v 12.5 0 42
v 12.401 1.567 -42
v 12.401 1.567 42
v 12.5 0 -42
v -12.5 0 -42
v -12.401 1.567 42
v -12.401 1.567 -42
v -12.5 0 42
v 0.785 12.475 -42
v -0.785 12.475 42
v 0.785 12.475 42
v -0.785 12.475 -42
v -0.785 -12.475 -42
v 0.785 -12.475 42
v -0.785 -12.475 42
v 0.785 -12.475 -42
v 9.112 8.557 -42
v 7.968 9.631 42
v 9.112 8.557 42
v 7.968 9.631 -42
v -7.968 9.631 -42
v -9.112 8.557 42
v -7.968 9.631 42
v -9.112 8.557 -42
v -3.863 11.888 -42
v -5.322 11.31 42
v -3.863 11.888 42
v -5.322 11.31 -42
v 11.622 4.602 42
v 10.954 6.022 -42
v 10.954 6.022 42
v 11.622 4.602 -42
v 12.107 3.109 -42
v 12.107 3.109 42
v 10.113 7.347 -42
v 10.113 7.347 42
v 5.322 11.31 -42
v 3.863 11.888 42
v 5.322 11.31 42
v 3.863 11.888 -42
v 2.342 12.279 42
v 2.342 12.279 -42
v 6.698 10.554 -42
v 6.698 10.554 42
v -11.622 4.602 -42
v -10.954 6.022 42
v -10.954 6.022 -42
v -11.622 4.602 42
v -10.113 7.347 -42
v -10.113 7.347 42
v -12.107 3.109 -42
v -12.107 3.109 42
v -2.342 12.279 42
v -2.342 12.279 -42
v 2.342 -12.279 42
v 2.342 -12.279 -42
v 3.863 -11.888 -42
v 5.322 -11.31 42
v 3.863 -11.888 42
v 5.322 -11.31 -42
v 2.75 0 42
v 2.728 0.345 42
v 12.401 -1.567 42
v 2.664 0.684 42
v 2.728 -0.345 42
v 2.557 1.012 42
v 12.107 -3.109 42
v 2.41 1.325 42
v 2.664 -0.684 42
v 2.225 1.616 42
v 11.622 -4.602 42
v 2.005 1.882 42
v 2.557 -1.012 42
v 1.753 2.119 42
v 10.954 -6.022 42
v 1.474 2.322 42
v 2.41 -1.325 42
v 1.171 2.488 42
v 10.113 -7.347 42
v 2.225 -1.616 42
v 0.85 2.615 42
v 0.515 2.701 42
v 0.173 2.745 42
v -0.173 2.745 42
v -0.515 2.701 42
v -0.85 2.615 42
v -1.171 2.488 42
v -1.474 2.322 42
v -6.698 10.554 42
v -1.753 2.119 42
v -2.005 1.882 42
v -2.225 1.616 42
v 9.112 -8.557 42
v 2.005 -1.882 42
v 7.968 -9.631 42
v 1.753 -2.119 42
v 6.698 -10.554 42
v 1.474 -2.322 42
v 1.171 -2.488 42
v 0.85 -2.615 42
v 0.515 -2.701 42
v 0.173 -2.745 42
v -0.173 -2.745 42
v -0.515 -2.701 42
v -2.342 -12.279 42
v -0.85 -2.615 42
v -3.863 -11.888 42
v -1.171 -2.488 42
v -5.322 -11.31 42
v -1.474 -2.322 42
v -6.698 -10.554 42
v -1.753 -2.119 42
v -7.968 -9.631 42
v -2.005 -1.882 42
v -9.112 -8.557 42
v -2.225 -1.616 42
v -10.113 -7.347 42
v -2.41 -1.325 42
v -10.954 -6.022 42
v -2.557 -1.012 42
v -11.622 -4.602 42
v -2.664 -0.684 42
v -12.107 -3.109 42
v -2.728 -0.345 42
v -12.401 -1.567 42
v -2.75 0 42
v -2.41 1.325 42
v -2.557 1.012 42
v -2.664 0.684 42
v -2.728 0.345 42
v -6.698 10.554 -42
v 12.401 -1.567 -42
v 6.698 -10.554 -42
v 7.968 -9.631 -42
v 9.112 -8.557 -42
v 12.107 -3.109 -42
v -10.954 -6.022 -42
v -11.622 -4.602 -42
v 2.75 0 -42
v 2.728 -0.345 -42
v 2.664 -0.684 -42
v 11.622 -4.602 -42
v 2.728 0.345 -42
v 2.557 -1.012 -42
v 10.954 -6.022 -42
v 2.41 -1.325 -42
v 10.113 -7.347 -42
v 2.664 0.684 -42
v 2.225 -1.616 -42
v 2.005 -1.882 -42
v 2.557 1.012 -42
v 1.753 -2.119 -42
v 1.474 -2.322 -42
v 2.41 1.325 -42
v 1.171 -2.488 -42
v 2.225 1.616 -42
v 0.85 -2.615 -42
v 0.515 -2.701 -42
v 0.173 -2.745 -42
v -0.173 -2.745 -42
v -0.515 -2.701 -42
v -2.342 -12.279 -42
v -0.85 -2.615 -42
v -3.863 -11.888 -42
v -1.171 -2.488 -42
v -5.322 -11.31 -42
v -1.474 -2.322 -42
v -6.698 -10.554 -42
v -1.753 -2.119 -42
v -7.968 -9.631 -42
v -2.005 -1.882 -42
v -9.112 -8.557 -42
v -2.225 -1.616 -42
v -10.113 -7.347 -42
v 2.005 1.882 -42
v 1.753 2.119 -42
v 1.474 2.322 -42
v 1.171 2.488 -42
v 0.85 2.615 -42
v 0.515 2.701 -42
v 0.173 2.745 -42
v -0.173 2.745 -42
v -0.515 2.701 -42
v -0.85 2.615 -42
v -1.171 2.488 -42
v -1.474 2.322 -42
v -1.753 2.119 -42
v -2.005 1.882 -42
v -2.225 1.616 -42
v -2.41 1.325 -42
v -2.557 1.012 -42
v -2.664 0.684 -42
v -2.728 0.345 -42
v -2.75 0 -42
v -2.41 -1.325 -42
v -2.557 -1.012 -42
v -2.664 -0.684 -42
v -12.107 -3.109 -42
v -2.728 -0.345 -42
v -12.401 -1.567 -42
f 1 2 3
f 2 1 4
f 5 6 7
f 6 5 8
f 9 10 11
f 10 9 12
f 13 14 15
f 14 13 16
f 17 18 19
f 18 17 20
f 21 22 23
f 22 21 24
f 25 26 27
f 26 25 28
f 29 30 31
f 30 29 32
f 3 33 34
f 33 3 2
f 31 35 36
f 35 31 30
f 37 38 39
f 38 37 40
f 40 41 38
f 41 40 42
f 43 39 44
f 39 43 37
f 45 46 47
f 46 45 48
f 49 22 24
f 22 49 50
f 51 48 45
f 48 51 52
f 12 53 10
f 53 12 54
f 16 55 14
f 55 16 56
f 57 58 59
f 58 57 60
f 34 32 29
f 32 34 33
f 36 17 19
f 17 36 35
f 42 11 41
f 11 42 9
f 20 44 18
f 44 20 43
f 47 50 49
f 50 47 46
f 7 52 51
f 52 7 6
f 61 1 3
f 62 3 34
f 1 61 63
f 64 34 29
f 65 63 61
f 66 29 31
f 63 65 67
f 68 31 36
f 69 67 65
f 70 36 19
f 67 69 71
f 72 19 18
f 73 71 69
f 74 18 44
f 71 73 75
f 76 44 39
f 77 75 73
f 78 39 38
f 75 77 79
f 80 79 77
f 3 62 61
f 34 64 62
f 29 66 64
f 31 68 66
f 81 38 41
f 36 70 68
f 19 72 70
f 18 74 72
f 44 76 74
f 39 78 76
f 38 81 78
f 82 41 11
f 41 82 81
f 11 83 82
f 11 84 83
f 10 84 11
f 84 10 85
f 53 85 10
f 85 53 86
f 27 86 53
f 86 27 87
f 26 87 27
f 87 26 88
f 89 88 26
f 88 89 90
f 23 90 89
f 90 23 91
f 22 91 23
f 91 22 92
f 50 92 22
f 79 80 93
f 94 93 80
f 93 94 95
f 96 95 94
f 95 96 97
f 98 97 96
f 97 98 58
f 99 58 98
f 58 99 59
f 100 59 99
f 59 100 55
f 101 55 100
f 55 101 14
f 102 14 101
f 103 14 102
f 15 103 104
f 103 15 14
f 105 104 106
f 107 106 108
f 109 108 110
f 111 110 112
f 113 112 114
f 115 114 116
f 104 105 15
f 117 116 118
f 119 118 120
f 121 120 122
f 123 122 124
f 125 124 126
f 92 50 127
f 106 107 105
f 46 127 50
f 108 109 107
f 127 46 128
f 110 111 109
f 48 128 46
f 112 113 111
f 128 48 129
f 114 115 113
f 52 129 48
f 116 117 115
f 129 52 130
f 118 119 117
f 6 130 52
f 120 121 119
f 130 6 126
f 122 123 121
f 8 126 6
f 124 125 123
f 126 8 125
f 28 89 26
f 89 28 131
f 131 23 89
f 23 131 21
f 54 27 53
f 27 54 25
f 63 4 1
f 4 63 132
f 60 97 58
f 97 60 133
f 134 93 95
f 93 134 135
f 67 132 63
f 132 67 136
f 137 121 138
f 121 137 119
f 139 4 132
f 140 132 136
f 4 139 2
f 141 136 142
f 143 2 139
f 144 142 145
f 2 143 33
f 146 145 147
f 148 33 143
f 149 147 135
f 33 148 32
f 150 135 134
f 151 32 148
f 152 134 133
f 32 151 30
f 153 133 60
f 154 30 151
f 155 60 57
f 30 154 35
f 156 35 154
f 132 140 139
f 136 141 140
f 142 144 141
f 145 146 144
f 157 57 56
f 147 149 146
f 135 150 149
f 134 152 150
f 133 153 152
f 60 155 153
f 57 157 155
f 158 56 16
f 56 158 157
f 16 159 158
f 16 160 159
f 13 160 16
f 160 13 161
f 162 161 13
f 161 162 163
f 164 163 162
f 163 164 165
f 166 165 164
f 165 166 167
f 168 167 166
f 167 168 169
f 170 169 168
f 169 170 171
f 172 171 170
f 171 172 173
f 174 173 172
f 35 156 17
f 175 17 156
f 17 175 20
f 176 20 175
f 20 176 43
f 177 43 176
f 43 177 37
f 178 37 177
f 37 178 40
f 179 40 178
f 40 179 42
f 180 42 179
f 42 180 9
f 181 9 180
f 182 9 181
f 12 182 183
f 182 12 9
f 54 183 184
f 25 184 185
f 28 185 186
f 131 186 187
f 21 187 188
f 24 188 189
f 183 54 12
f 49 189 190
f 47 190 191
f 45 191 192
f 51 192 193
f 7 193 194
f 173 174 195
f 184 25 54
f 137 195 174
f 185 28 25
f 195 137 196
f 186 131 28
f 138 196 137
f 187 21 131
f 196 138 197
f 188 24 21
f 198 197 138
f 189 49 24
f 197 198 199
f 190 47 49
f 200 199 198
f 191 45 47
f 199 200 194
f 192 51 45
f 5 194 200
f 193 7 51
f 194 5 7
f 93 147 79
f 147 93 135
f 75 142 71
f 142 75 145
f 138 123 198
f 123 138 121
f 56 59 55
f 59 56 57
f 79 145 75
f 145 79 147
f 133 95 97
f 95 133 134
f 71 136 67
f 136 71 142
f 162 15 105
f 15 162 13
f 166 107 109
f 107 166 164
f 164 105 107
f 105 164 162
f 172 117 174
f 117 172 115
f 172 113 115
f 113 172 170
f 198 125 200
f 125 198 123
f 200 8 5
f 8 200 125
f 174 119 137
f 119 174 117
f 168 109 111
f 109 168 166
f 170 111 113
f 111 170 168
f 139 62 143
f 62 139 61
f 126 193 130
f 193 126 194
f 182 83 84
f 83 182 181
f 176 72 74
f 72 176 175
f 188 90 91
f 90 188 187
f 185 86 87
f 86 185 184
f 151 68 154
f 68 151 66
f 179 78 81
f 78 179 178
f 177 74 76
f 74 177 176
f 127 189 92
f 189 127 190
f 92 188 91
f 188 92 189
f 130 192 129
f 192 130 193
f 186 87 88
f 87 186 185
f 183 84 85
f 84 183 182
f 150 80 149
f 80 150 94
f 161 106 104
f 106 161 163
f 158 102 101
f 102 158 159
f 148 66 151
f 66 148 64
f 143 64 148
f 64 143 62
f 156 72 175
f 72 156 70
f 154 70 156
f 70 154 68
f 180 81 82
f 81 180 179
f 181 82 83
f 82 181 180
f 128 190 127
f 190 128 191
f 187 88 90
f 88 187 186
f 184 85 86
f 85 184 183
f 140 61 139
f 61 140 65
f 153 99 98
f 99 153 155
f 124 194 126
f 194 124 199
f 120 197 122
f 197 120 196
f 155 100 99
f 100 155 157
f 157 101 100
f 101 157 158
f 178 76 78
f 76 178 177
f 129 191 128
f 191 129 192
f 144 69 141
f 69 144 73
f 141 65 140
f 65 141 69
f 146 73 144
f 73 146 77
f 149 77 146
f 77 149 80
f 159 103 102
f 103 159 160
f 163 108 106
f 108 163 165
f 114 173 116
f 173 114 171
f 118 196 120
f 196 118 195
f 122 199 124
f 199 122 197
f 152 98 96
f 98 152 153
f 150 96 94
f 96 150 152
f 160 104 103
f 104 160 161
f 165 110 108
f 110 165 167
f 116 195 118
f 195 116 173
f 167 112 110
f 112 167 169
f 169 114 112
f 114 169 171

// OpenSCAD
$fn = 50;


difference() {
	union() {
		translate(v = [0, 0, -42.0000000000]) {
			cylinder(h = 84, r = 12.5000000000);
		}
	}
	union() {
		translate(v = [0, 0, -100.0000000000]) {
			cylinder(h = 200, r = 2.7500000000);
		}
	}
}
